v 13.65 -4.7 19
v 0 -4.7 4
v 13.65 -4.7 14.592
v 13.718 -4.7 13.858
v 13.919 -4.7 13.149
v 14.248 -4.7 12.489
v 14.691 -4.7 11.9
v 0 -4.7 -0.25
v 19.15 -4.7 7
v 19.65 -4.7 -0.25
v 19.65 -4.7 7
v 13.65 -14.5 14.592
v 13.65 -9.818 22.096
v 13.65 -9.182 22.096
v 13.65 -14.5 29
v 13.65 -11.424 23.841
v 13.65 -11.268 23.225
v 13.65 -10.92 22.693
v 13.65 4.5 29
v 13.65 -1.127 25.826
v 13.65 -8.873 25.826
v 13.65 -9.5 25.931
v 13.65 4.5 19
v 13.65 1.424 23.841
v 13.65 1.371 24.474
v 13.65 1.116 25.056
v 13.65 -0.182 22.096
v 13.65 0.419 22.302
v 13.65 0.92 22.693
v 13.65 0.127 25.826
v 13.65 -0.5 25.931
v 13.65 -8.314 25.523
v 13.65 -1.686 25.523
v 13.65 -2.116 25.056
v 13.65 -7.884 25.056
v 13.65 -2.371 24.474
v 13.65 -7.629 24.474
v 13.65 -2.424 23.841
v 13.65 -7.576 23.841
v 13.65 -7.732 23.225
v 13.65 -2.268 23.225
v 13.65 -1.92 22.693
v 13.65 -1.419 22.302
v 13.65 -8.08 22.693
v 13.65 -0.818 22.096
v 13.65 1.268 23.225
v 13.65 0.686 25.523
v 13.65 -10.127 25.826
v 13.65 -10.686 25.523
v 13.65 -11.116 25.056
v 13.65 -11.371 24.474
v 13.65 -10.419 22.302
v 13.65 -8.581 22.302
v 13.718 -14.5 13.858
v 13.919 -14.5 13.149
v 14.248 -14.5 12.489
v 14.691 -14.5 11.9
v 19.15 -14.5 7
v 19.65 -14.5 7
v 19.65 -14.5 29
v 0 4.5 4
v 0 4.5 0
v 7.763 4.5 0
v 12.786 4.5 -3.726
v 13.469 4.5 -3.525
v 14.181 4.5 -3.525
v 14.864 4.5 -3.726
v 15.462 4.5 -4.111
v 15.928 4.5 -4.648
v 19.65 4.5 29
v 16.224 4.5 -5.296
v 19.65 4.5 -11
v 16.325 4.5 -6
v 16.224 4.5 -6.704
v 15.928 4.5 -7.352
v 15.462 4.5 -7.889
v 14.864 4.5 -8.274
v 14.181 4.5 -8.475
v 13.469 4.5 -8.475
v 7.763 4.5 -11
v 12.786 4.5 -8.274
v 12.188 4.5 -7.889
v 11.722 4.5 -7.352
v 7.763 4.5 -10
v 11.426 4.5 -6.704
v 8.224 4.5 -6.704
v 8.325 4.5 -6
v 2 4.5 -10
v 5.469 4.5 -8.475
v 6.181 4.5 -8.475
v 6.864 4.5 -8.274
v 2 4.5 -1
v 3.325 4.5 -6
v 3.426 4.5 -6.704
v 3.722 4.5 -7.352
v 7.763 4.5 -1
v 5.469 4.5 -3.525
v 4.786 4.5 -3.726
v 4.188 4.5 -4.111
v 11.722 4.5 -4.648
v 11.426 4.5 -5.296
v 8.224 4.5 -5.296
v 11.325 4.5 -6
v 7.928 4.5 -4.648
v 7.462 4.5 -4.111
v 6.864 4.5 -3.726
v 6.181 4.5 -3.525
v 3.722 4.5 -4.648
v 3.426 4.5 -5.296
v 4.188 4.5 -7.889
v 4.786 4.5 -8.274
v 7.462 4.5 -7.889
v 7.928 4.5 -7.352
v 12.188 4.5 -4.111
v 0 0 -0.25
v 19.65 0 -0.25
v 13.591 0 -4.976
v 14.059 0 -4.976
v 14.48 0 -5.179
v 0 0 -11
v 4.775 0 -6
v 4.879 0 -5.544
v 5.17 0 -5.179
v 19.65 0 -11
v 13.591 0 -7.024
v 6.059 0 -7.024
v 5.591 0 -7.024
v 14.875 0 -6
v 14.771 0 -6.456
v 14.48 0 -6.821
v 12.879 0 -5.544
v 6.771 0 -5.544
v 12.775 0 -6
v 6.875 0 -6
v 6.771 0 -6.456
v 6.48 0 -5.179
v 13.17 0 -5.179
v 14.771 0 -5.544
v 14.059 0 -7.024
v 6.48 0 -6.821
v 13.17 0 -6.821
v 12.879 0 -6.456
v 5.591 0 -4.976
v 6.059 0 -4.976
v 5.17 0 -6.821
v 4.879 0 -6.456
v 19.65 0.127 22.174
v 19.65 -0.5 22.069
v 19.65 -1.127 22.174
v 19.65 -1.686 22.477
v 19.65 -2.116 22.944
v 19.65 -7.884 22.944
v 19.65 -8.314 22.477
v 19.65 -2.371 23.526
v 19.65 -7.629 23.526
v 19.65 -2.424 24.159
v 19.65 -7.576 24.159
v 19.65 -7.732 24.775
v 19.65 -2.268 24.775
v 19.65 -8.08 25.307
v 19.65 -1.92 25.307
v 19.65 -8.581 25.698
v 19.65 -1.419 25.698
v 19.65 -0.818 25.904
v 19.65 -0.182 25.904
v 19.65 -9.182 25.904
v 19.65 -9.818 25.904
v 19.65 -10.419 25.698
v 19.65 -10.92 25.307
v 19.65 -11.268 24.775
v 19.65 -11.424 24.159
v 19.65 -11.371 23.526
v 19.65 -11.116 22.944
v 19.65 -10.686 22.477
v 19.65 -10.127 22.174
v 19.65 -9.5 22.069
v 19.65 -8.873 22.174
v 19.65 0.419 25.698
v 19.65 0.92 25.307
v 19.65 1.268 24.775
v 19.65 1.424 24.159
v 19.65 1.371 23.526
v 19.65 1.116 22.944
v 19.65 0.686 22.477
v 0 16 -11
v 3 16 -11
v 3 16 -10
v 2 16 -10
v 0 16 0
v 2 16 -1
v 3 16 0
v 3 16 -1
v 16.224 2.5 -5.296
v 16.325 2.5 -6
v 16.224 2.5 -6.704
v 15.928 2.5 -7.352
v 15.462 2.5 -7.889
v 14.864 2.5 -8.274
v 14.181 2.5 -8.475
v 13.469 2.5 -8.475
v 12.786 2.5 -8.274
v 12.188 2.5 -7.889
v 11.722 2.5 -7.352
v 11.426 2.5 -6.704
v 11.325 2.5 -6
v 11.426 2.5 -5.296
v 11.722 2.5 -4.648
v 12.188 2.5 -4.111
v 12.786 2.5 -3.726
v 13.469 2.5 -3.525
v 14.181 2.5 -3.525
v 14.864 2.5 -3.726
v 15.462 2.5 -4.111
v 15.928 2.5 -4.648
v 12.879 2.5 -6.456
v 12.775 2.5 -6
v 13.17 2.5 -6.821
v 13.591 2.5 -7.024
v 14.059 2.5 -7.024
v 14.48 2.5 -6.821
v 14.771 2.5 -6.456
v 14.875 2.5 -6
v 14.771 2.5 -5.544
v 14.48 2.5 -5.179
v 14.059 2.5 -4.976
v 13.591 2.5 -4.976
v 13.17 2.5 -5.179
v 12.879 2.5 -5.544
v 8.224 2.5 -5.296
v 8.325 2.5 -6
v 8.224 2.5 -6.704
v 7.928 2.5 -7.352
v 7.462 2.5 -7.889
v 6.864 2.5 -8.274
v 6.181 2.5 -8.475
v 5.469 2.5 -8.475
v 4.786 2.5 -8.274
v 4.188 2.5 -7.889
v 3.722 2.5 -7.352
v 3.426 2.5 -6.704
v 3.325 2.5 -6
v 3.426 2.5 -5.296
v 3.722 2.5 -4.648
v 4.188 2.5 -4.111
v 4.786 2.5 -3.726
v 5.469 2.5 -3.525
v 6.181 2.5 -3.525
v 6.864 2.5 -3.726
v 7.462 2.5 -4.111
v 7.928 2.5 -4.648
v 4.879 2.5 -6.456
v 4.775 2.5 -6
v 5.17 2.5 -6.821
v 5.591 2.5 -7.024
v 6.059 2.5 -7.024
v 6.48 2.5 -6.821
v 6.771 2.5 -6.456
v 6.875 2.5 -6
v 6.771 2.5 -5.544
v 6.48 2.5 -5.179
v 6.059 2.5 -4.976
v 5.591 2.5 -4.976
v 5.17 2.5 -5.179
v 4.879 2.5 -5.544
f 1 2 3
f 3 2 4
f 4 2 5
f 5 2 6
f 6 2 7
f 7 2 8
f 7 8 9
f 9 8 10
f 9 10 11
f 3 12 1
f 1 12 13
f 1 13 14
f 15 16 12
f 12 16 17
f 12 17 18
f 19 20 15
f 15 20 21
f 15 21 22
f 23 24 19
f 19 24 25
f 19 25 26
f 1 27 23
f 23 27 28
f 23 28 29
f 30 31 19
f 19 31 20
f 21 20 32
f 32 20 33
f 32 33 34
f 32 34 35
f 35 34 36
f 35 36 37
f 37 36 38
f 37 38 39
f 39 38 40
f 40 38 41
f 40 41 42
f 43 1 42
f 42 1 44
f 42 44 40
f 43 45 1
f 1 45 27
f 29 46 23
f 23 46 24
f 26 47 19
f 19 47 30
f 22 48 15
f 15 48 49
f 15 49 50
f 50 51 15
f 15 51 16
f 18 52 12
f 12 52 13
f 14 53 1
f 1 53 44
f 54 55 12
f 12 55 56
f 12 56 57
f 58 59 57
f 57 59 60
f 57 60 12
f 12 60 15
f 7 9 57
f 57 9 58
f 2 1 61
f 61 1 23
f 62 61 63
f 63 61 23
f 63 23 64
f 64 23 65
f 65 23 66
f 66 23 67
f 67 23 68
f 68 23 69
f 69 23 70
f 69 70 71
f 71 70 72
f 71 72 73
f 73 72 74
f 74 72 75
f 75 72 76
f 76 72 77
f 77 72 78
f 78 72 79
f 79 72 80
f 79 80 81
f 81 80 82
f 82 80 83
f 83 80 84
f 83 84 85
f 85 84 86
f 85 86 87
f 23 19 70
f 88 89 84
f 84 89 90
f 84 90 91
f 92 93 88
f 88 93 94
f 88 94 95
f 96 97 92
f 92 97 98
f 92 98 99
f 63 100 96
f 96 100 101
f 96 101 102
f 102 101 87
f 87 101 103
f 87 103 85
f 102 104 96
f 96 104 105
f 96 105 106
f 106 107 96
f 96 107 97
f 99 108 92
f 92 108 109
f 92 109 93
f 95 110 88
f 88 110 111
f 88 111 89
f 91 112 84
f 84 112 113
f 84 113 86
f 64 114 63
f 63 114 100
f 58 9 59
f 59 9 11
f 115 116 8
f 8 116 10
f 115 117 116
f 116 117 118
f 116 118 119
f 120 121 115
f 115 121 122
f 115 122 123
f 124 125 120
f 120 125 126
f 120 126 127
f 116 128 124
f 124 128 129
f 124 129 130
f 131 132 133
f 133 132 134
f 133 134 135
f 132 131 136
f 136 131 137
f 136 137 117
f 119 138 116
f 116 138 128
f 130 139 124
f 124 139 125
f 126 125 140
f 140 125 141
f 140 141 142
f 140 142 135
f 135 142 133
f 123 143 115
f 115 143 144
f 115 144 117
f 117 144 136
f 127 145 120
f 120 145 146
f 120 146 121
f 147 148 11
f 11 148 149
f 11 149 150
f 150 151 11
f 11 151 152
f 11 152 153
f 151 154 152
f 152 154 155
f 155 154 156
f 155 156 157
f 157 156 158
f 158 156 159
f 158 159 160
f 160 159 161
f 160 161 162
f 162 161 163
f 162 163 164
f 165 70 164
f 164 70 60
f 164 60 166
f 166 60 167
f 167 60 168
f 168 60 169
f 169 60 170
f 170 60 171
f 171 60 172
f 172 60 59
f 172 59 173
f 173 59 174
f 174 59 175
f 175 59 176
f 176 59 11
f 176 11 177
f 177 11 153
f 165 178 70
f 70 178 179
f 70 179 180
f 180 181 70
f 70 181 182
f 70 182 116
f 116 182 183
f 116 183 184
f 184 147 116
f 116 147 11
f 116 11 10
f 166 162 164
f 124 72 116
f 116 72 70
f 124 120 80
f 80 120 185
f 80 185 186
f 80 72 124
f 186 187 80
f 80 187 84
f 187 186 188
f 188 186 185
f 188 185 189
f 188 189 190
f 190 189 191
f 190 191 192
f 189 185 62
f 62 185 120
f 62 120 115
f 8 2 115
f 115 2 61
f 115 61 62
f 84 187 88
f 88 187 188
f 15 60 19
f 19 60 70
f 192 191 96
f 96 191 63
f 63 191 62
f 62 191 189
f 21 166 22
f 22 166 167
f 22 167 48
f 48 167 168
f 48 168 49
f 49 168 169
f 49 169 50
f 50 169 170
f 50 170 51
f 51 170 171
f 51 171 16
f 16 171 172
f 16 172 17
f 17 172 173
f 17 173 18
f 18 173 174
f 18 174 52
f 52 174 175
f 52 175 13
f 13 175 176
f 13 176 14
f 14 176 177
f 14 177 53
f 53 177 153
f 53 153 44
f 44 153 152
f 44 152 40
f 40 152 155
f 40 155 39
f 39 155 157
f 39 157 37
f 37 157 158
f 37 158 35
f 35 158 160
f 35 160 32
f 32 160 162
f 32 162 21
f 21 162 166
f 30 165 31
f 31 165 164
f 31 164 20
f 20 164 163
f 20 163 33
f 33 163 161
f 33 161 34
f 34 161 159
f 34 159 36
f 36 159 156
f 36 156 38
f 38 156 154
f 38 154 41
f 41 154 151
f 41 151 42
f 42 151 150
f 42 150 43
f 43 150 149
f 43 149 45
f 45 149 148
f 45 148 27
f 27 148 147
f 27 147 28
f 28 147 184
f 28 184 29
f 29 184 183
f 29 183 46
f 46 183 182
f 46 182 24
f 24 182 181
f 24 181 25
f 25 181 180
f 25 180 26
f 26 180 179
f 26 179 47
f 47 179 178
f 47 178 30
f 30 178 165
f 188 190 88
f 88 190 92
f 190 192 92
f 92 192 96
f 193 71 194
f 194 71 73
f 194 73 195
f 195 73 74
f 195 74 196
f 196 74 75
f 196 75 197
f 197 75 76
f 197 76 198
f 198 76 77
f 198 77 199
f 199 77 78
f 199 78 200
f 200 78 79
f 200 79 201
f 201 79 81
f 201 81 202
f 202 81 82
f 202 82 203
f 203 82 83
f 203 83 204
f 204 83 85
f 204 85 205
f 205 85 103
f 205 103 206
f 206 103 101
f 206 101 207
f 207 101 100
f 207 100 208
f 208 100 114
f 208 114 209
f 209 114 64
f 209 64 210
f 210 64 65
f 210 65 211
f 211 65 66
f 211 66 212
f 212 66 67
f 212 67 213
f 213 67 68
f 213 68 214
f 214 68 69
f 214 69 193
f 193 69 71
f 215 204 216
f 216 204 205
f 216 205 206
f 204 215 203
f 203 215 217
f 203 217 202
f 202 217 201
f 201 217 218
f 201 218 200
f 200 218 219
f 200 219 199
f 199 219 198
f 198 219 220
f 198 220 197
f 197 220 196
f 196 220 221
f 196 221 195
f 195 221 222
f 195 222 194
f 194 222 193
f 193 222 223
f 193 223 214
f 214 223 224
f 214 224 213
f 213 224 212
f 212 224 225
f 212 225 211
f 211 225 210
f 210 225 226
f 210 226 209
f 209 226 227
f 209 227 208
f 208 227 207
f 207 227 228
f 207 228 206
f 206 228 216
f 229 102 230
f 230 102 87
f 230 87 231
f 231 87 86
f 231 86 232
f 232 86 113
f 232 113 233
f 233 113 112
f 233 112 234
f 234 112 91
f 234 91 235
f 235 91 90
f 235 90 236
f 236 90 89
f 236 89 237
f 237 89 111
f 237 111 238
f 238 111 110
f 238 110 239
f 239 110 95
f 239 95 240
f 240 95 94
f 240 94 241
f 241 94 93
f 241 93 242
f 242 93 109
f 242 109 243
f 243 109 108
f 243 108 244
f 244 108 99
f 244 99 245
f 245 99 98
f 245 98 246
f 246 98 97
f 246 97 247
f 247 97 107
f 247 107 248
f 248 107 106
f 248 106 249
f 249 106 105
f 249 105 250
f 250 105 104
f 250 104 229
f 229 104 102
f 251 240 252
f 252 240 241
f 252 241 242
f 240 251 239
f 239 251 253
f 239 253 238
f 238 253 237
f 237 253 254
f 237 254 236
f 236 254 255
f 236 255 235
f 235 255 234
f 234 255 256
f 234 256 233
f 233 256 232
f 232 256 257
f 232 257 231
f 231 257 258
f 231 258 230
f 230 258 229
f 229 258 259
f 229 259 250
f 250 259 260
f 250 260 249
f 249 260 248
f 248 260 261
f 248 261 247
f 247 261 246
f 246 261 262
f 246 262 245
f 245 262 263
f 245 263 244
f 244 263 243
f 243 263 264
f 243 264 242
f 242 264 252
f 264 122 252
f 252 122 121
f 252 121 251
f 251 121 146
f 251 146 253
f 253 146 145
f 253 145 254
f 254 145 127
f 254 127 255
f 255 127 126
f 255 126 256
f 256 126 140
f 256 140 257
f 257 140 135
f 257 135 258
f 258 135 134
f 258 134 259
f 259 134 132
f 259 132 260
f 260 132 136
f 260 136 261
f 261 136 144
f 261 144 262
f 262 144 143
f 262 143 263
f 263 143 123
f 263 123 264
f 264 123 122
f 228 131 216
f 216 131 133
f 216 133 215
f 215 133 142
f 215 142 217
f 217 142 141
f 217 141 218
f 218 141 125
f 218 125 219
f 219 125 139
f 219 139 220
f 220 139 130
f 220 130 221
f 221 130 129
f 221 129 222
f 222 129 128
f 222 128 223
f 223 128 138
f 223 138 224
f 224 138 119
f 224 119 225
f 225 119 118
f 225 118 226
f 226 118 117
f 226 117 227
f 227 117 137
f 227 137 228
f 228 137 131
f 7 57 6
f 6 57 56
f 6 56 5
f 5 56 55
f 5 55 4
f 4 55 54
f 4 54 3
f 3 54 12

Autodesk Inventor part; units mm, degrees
ref_plane "YZ Plane" through (0, 0, 0) normal (1, 0, 0) x (0, 1, 0)
ref_plane "XZ Plane" through (0, 0, 0) normal (0, 1, 0) x (-1, 0, 0)
ref_plane "XY Plane" through (0, 0, 0) normal (0, 0, 1) x (1, 0, 0)
sketch "Sketch1" plane through (0, 0, 0) normal (0, 1, 0) x (-1, 0, 0)
  line L0 (0, 0) -> (-19.65, 0)
  line L1 (-19.65, 0) -> (-19.65, -12)
  line L2 (-19.65, -12) -> (0, -12)
  line L3 (0, -12) -> (0, 0)
  line L4 (0, 0) -> (0, -6)
  line L5 (0, -6) -> (-5.825, -6)
  line L6 (-5.825, -6) -> (-13.825, -6)
  circle A0 centre (-5.825, -6) radius 1.05
  circle A1 centre (-13.825, -6) radius 1.05
  dimension "d0" = 19.65
  dimension "d1" = 12
  dimension "d2" = 6
  dimension "d3" = 5.825
  dimension "d4" = 8
  dimension "d5" = 2.1
  dimension "d6" = 2.1
extrude "Extrusion1" add sketch "Sketch1" along normal blind 4.5
sketch "Sketch2" plane through (0, 4.5, 0) normal (0, 1, 0) x (1, 0, 0)
  line L0 (0, 0) -> (19.65, 0) projected
  line L1 (0, 0) -> (0, 6)
  line L2 (0, 12) -> (0, 0) projected
  line L3 (0, 6) -> (5.825, 6)
  line L4 (5.825, 6) -> (13.825, 6)
  circle A0 centre (5.825, 6) radius 2.5
  circle A1 centre (13.825, 6) radius 2.5
  dimension "d9" = 5.825
  dimension "d10" = 8
  dimension "d11" = 5
  dimension "d12" = 5
extrude "Extrusion2" cut sketch "Sketch2" against normal blind 2
sketch "Sketch3" plane through (0, 4.5, 0) normal (0, 1, 0) x (1, 0, 0)
  line L0 (19.65, 12) -> (0, 12) projected
  line L1 (0, 0) -> (3, 0)
  line L2 (3, 0) -> (3, 12)
  line L3 (3, 12) -> (0, 12)
  line L4 (0, 12) -> (0, 0)
  dimension "d15" = 3
extrude "Extrusion3" add sketch "Sketch3" along normal blind 11.5
sketch "Sketch4" plane through (0, 16, 0) normal (0, 1, 0) x (1, 0, 0)
  line L0 (0, 0) -> (3, 0) projected
  line L1 (0, 0) -> (3, 0)
  line L2 (3, 0) -> (3, 1)
  line L3 (3, 0) -> (3, 12) projected
  line L4 (3, 1) -> (2, 1)
  line L5 (2, 1) -> (2, 11)
  line L6 (2, 11) -> (3, 11)
  line L7 (3, 1) -> (3, 11)
  dimension "d18" = 1
  dimension "d19" = 1
  dimension "d20" = 10
extrude "Extrusion4" cut sketch "Sketch4" against normal blind 11.5
sketch "Sketch6" plane through (0, 0, 0) normal (0, 0, 1) x (1, 0, 0)
  line L0 (0, 0) -> (19.65, 0) projected
  line L1 (0, 0) -> (5, 0)
  line L2 (5, 0) -> (5, 4.5)
  line L3 (3.325, 4.5) -> (8.325, 4.5) projected
  line L4 (19.65, 0) -> (19.65, 4.5) projected
  line L5 (19.65, 4.5) -> (19.65, 0)
  line L6 (19.65, 0) -> (5, 0)
  line L7 (5, 4.5) -> (19.65, 4.5)
  line L8 (19.65, 0) -> (5, 0)
  line L9 (19.65, 4.5) -> (19.65, -3.5)
  line L10 (5, 4.5) -> (-3, 4.5)
  line L11 (3, 4.5) -> (19.65, 4.5) projected
  line L12 (5, 4.5) -> (5, -3.5)
  line L13 (5, -3.5) -> (19.65, -3.5)
  dimension "d24" = 5
  dimension "d25" = 8
  dimension "d26" = 8
  dimension "d27" = 8
extrude "Extrusion5" add sketch "Sketch6" along normal blind 2
sketch "Sketch7" plane through (0, 0, 2) normal (0, 0, 1) x (1, 0, 0)
  line L0 (5, 0) -> (5, -3.5) projected
  line L1 (5, -3.5) -> (11, -3.5)
  line L2 (11, -3.5) -> (11, 4.5)
  line L3 (11, 4.5) -> (5, 4.5)
  line L4 (5, 4.5) -> (5, -3.5)
  line L5 (5, -3.5) -> (19.65, -3.5) projected
  line L6 (5, -3.5) -> (11, -3.5)
  line L7 (11, -3.5) -> (11, -14.5)
  line L8 (11, -14.5) -> (5, -14.5)
  line L9 (5, -14.5) -> (5, -3.5)
  point P0 (0, 0)
  dimension "d30" = 6
  dimension "d31" = 8
  dimension "d32" = 6
  dimension "d33" = 11
extrude "Extrusion6" add sketch "Sketch7" along normal blind 27
sketch "Sketch8" plane through (11, -14.5, 2) normal (1, 0, 0) x (0, 0, -1)
  line L0 (0, 11) -> (0, 0) projected
  line L1 (0, 0) -> (-27, 0)
  line L2 (0, 0) -> (-27, 0) projected
  line L3 (-27, 0) -> (-27, 5)
  line L4 (2, 19) -> (-27, 19) projected
  circle A0 centre (-27, 5) radius 2
  line L5 (0, 19) -> (-27, 19)
  line L6 (-27, 19) -> (-27, 14)
  circle A1 centre (-27, 14) radius 2
  line L7 (-27, 14) -> (-22, 14)
  line L8 (-27, 5) -> (-22, 5)
  circle A2 centre (-22, 14) radius 1.9305
  circle A3 centre (-22, 5) radius 1.9305
  point P0 (2, 14.5)
  point P1 (-25, 14)
  point P2 (-27, 16)
  point P3 (-25, 5)
  point P4 (-27, 3)
  dimension "d36" = 27
  dimension "d37" = 5
  dimension "d39" = 4
  dimension "d41" = 27
  dimension "d42" = 5
  dimension "d43" = 4
  dimension "d44" = 5
  dimension "d45" = 5
  dimension "d46" = 3.861
  dimension "d47" = 3.861
sketch "Sketch10" plane through (11, -14.5, 2) normal (1, 0, 0) x (0, 0, -1)
  line L0 (0, 0) -> (-27, 0) projected
  line L1 (0, 0) -> (-5, 0)
  line L2 (-5, 0) -> (-5, 11)
  line L3 (-5, 11) -> (0, 11)
  line L4 (0, 11) -> (0, 0)
  point P0 (2, 14.5)
  point P1 (-5, 0)
  dimension "d52" = 5
  dimension "d53" = 11
extrude "Extrusion9" cut sketch "Sketch10" against normal blind 20
sketch "Sketch11" plane through (11, -3.5, 2) normal (1, 0, 0) x (0, 0, -1)
  line L0 (-27, 8) -> (0, 8)
  line L1 (0, 8) -> (0, -11)
  line L2 (0, -11) -> (-27, -11)
  line L3 (-27, -11) -> (-27, 8)
  line L4 (-5, 0) -> (0, 0) projected
  line L5 (-5, 0) -> (0, 0)
  line L6 (0, 0) -> (0, -11)
  line L7 (0, -11) -> (-5, -11)
  line L8 (-5, -11) -> (-5, 0)
  point P0 (2, 3.5)
  dimension "d56" = 27
  dimension "d57" = 19
extrude "Extrusion10" add sketch "Sketch11" along normal blind 16 contours L0 L1 L4 L8 L2 L3
sketch "Sketch13" plane through (5, -3.5, 0) normal (-1, 0, 0) x (0, 0, 1)
  line L0 (0, 3.5) -> (0, 8) projected
  line L1 (0, 8) -> (30.196, 8)
  line L2 (30.196, 8) -> (30.196, -11.8084)
  line L3 (30.196, -11.8084) -> (0, -11.8084)
  line L4 (0, -11.8084) -> (0, 8)
extrude "Extrusion12" cut sketch "Sketch13" against normal blind 12.5
extrude "Extrusion13" cut sketch "Sketch8" along normal blind 30 contours A2 | A3
sketch "Sketch14" plane through (0, 0, -12) normal (-1, 0, 0) x (0, 0, 1)
  line L0 (12, 4.5) -> (12, 16) projected
  line L1 (12, 4.5) -> (16, 4.5)
  line L2 (14, 4.5) -> (41, 4.5) projected
  line L3 (12, 4.5) -> (12, 0) projected
  line L4 (16, 4.5) -> (12, 4.5)
  line L5 (12, 4.5) -> (12, 0)
  line L6 (12, 0) -> (16, 0)
  line L7 (16, 0) -> (16, 4.5)
  line L8 (16, 0) -> (12, 0)
  line L9 (12, 0) -> (12, -3.5)
  line L10 (12, -3.5) -> (16, -3.5)
  line L11 (16, -3.5) -> (16, 0)
  dimension "d68" = 4
  dimension "d69" = 3.5
extrude "Extrusion14" add sketch "Sketch14" against normal blind 27
sketch "Sketch15" plane through (27, -3.5, 2) normal (1, 0, 0) x (0, 0, -1)
  line L0 (-27.7224, 9.1153) -> (2, 9.1153)
  line L1 (2, 9.1153) -> (2, -11.9629)
  line L2 (2, -11.9629) -> (-27.7224, -11.9629)
  line L3 (-27.7224, -11.9629) -> (-27.7224, 9.1153)
  point P0 (2, 3.5)
extrude "Extrusion15" cut sketch "Sketch15" against normal blind 3.5
sketch "Sketch16" plane through (0, 0, 0) normal (0, 0, -1) x (-1, 0, 0)
  line L0 (-23.5, 4.5) -> (-23.5, -3.5) projected
  line L1 (-19.65, 0) -> (0, 0) projected
  line L2 (-23.5, 4.5) -> (-19.65, 4.5)
  line L3 (-19.65, 4.5) -> (-19.65, 0)
  line L4 (-19.65, 0) -> (-23.5, 0)
  line L5 (-23.5, 0) -> (-23.5, 4.5)
  line L6 (0, -3.5) -> (-23.5, -3.5) projected
  line L7 (-23.5, -3.5) -> (0, -3.5)
  line L8 (0, -3.5) -> (0, 0)
  line L9 (0, 0) -> (-23.5, 0)
  line L10 (-23.5, 0) -> (-23.5, -3.5)
extrude "Extrusion16" cut sketch "Sketch16" against normal blind 0.25
chamfer "Chamfer2" distance 11.5 angle 22.5 1 edges at (3, 4.5, -0.5) measured on face at (3, 8.3333, -0.6667)
chamfer "Chamfer3" distance 11.5 angle 22.5 1 edges at (3, 4.5, -11.5) measured on face at (3, 8.3333, -11.3333)
sketch "Sketch17" plane through (17.5, -3.5, 0) normal (-1, 0, 0) x (0, 0, 1)
  line L0 (4, 8) -> (0, 8) projected
  line L1 (4, 8) -> (29, 8) projected
  line L2 (4, 8) -> (29, 8)
  line L3 (29, -11) -> (7, -11) projected
  line L4 (29, 8) -> (29, -11)
  line L5 (29, -11) -> (7, -11)
  line L6 (7, -11) -> (7, 0) projected
  line L7 (7, -11) -> (7, 0)
  line L8 (7, 0) -> (4, 0) projected
  line L9 (7, 0) -> (4, 0)
  line L10 (4, 0) -> (4, 8) projected
  line L11 (4, 0) -> (4, 8)
  circle A0 centre (24, 3) radius 1.9305 projected
  circle A1 centre (24, 3) radius 1.9305
  circle A2 centre (24, -6) radius 1.9305 projected
  circle A3 centre (24, -6) radius 1.9305
  point P0 (0, 3.5)
extrude "Extrusion17" add sketch "Sketch17" along normal blind 7.75
sketch "Sketch19" plane through (19.65, 0, -12) normal (1, 0, 0) x (0, 0, -1)
  line L0 (3.0047, 17.6779) -> (-43.6886, 17.6779)
  line L1 (-43.6886, 17.6779) -> (-43.6886, -24.1526)
  line L2 (-43.6886, -24.1526) -> (3.0047, -24.1526)
  line L3 (3.0047, -24.1526) -> (3.0047, 17.6779)
  point P0 (-12, 0)
extrude "Extrusion18" cut sketch "Sketch19" along normal blind 7.75
sketch "Sketch20" plane through (19.65, 0, -12) normal (1, 0, 0) x (0, 0, -1)
  line L0 (-16, -3.5) -> (-19, -3.5) projected
  line L1 (-41, 4.5) -> (-16, 4.5) projected
  line L2 (-16, -3.5) -> (-41, -3.5)
  line L3 (-41, -3.5) -> (-41, 4.5)
  line L4 (-41, 4.5) -> (-16, 4.5)
  line L5 (-16, 4.5) -> (-16, -3.5)
  line L6 (-19, -3.5) -> (-19, -14.5) projected
  line L7 (0, 4.5) -> (-41, 4.5) projected
  line L8 (-19, -14.5) -> (-41, -14.5)
  line L9 (-41, -14.5) -> (-41, 4.5)
  line L10 (-41, 4.5) -> (-19, 4.5)
  line L11 (-19, 4.5) -> (-19, -14.5)
  point P0 (-12, 0)
extrude "Extrusion19" cut sketch "Sketch20" against normal blind 3.4
sketch "Sketch22" plane through (9.75, -3.5, 0) normal (-1, 0, 0) x (0, 0, 1)
  line L0 (29, 8) -> (4, 8) projected
  line L1 (29, -11) -> (29, 8) projected
  line L2 (4, 8) -> (29, 8)
  line L3 (29, 8) -> (29, -11)
  line L4 (29, -11) -> (4, -11)
  line L5 (4, -11) -> (4, 8)
  point P0 (0, 3.5)
extrude "Extrusion21" cut sketch "Sketch22" against normal blind 0.5
chamfer "Chamfer6" distance 6 angle 45 1 edges at (10.25, 0.5, 4)
sketch "Sketch23" plane through (10.25, -3.5, 0) normal (-1, 0, 0) x (0, 0, 1)
  line L0 (0.25, 0) -> (4, 0) projected
  line L1 (29, -11) -> (0.25, -11)
  line L2 (0.25, -11) -> (0.25, 0)
  line L3 (0.25, 0) -> (29, 0)
  line L4 (29, 0) -> (29, -11)
  point P0 (0, 3.5)
extrude "Extrusion22" cut sketch "Sketch23" along normal blind 6
chamfer "Chamfer7" distance 3 angle 45 1 edges at (10.25, -9, 7)
sketch "Sketch24" plane through (2, 4.5, -11) normal (0, 0, 1) x (1, 0, 0)
  line L0 (0, 11.5) -> (0, 0) projected
  line L1 (0, 11.5) -> (1, 11.5) projected
  line L2 (0, 11.5) -> (1, 11.5)
  line L3 (1, 11.5) -> (5.7635, 0) projected
  line L4 (1, 11.5) -> (5.7635, 0)
  line L5 (5.7635, 0) -> (0, 0)
  line L6 (0, 0) -> (0, 11.5)
  point P0 (-2, -4.5)
extrude "Extrusion23" add sketch "Sketch24" along normal blind 1
sketch "Sketch25" plane through (19.65, 0, -12) normal (0, 0, -1) x (-1, 0, 0)
  line L0 (11.8865, 4.5) -> (16.65, 16) projected
  line L1 (11.8865, 4.5) -> (21.5602, 4.5)
  line L2 (21.5602, 4.5) -> (21.5602, 16.6717)
  line L3 (21.5602, 16.6717) -> (11.8865, 16.6717)
  line L4 (11.8865, 16.6717) -> (11.8865, 4.5)
  point P0 (19.65, 0)
extrude "Extrusion24" cut sketch "Sketch25" against normal blind 1
sketch "Sketch26" plane through (19.65, 0, -12) normal (0, 0, -1) x (-1, 0, 0)
  line L0 (23.0227, -5.5896) -> (-3.5888, -5.5896)
  line L1 (-3.5888, -5.5896) -> (-3.5888, 1.5983)
  line L2 (23.0227, 1.5983) -> (23.0227, -5.5896)
  line L3 (23.0227, -5.5896) -> (-3.178, -5.5896)
  line L4 (-3.178, -5.5896) -> (-3.178, 11.4907)
  line L5 (-3.178, 11.4907) -> (23.0227, 11.4907)
  line L6 (23.0227, 11.4907) -> (23.0227, -5.5896)
  point P0 (19.65, 0)
extrude "Extrusion25" cut sketch "Sketch26" against normal blind 1
sketch "Sketch27" plane through (0, 0, 0.25) normal (0, 0, -1) x (-1, 0, 0)
  line L0 (-19.65, 0) -> (0, 0) projected
  line L1 (-19.65, -3.5) -> (-16.25, -3.5) projected
  line L2 (0, 0) -> (-19.65, 0)
  line L3 (-19.65, 0) -> (-19.65, -3.5)
  line L4 (-19.65, -3.5) -> (0, -3.5)
  line L5 (0, -3.5) -> (0, 0)
extrude "Extrusion26" add sketch "Sketch27" along normal blind 0.25
sketch "Sketch28" plane through (0, 0, 0) normal (0, 0, -1) x (-1, 0, 0)
  line L0 (0, 0) -> (-19.65, 0) projected
  line L1 (-19.65, 0) -> (-19.65, -3.5) projected
  line L2 (0, 0) -> (-19.65, 0)
  line L3 (-19.65, 0) -> (-19.65, -3.5)
  line L4 (-19.65, -3.5) -> (0, -3.5)
  line L5 (0, -3.5) -> (0, 0)
extrude "Extrusion27" add sketch "Sketch28" along normal blind 0.25
sketch "Sketch29" plane through (16.25, 0, -12) normal (1, 0, 0) x (0, 0, -1)
  line L0 (-16, -3.5) -> (-16, 4.5) projected
  line L1 (-19, -14.5) -> (-41, -14.5) projected
  line L2 (-16, 4.5) -> (-41, 4.5)
  line L3 (-41, 4.5) -> (-41, -14.5)
  line L4 (-41, -14.5) -> (-16, -14.5)
  line L5 (-16, -14.5) -> (-16, 4.5)
  line L6 (-19, -3.5) -> (-19, -14.5) projected
  line L7 (-19, -3.5) -> (-16, -3.5)
  line L8 (-16, -3.5) -> (-16, -14.5)
  line L9 (-16, -14.5) -> (-19, -14.5)
  line L10 (-19, -14.5) -> (-19, -3.5)
  circle A0 centre (-36, -0.5) radius 1.9305 projected
  circle A1 centre (-36, -0.5) radius 1.9305
  circle A2 centre (-36, -9.5) radius 1.9305 projected
  circle A3 centre (-36, -9.5) radius 1.9305
  point P0 (-12, 0)
extrude "Extrusion28" add sketch "Sketch29" along normal blind 3.4 contours L7 L6 L1 L3 L2 L0
sketch "Sketch30" plane through (0, -3.5, 4) normal (0, -1, 0) x (1, 0, 0)
  line L0 (19.65, 3) -> (19.65, -4.25) projected
  line L1 (0, -15) -> (0, -4.25) projected
  line L2 (0, 3) -> (0, -4.25)
  line L3 (0, -4.25) -> (19.65, -4.25)
  line L4 (19.65, -4.25) -> (19.65, 3)
  line L5 (10.25, 6) -> (13.25, 3) projected
  line L6 (13.25, 3) -> (10.25, 6)
  line L7 (10.25, 6) -> (7.25, 3)
  line L8 (10.25, 6) -> (4.25, 0) projected
  line L9 (0, 0) -> (4.25, 0) projected
  line L10 (7.25, 3) -> (4.25, 0)
  line L11 (19.65, 3) -> (13.25, 3)
  line L12 (7.25, 3) -> (0, 3)
  point P0 (0, -4)
extrude "Extrusion29" add sketch "Sketch30" along normal blind 1.2 contours L0 L3 L2 L9 L8 L7 L5 L11
sketch "Sketch31" plane through (10.25, -3.5, 0) normal (-1, 0, 0) x (0, 0, 1)
  line L0 (29, 8) -> (29, -11) projected
  line L1 (29, -11) -> (10, -11) projected
  line L2 (29, 8) -> (19, 8)
  line L3 (19, 8) -> (19, -11)
  line L4 (19, -11) -> (29, -11)
  line L5 (29, -11) -> (29, 8)
  point P0 (0, 3.5)
  dimension "d126" = 10
extrude "Extrusion30" cut sketch "Sketch31" against normal blind 3.4
sketch "Sketch32" plane through (0, 4.5, 0) normal (0, 1, 0) x (1, 0, 0)
  line L0 (13.65, -19) -> (10.25, -19) projected
  line L1 (10.25, -19) -> (10.25, -10) projected
  line L2 (13.65, -19) -> (10.25, -10)
  line L3 (10.25, -10) -> (7.9334, -20.7068)
  line L4 (7.9334, -20.7068) -> (13.65, -19)
  point P0 (0, 0)
extrude "Extrusion31" cut sketch "Sketch32" against normal blind 20 contours L0 L1 L2
sketch "Sketch38" plane through (0, -4.7, 4) normal (0, -1, 0) x (1, 0, 0)
  line L0 (13.65, 15) -> (13.65, 3)
  line L1 (13.25, 3) -> (19.65, 3) projected
  line L2 (13.65, 3) -> (6.6933, 3)
  line L3 (10.25, 6) -> (13.65, 15) projected
  line L4 (6.6933, 3) -> (13.65, 15)
  point P0 (0, -4)
extrude "Extrusion35" cut sketch "Sketch38" along normal blind 20
sketch "Sketch39" plane through (0, -4.7, 4) normal (0, -1, 0) x (1, 0, 0)
  line L0 (10.25, 6) -> (13.65, 15) projected
  line L1 (10.25, 6) -> (10.9568, 7.8709)
  line L2 (10.9568, 7.8709) -> (13.65, 7.8709)
  line L3 (13.65, 3) -> (13.65, 15) projected
  line L4 (13.65, 3) -> (10.9568, 3)
  line L5 (10.9568, 3) -> (10.9568, 7.8709)
  line L6 (10.9568, 7.8709) -> (13.65, 7.8709)
  line L7 (13.65, 7.8709) -> (13.65, 3)
  point P0 (0, -4)
  dimension "d150" = 2
extrude "Extrusion36" add sketch "Sketch39" along normal blind 9.8 contours L2 L3 L4 L5
sketch "Sketch40" plane through (0, -4.7, 4) normal (0, -1, 0) x (1, 0, 0)
  line L0 (10.25, 6) -> (10.9568, 7.8709) projected
  line L1 (13.65, 25) -> (13.65, 7.8709) projected
  line L2 (10.9568, 7.8709) -> (13.65, 7.8709)
  line L3 (13.65, 15) -> (13.65, 25) projected
  line L4 (13.65, 7.8709) -> (13.65, 15)
  line L5 (10.9568, 7.8709) -> (13.65, 15) projected
  line L6 (13.65, 15) -> (10.9568, 7.8709)
  point P0 (0, -4)
extrude "Extrusion37" add sketch "Sketch40" along normal blind 9.8
sketch "Sketch42" plane through (0, -4.7, 4) normal (0, -1, 0) x (1, 0, 0)
  line L0 (4.25, 0) -> (0, 0) projected
  line L1 (10.25, 6) -> (13.65, 15) projected
  line L2 (0, 0) -> (13.65, 15)
  line L3 (13.65, 15) -> (13.65, 4.5)
  line L4 (13.65, 4.5) -> (6.0124, 0)
  line L5 (0, 0) -> (4.25, 0) projected
  line L6 (6.0124, 0) -> (0, 0)
  point P0 (0, -4)
extrude "Extrusion38" add sketch "Sketch42" against normal blind 9.2
sketch "Sketch45" plane through (19.65, -14.5, 7) normal (0, -1, 0) x (1, 0, 0)
  line L0 (-6, 12) -> (-19.65, -3) projected
  line L1 (-6, 12) -> (-11.8966, 12)
  line L2 (-11.8966, 12) -> (-11.8966, -1.0489)
  line L3 (-11.8966, -1.0489) -> (-6, -1.0489)
  line L4 (-6, -1.0489) -> (-6, 12)
  point P0 (-19.65, -7)
  point P1 (-11.8966, 5.5202)
extrude "Extrusion40" cut sketch "Sketch45" against normal blind 9.8 contours L4 L3 L2 L0
chamfer "Chamfer12" distance 5.5 angle 47.7 1 edges at (13.65, -9.6, 7) measured on face at (17.65, -11.2333, 7)
fillet "Fillet6" radius 4 1 edges at (13.65, -9.6, 13.0444)
properties part number "Finger_mount"
